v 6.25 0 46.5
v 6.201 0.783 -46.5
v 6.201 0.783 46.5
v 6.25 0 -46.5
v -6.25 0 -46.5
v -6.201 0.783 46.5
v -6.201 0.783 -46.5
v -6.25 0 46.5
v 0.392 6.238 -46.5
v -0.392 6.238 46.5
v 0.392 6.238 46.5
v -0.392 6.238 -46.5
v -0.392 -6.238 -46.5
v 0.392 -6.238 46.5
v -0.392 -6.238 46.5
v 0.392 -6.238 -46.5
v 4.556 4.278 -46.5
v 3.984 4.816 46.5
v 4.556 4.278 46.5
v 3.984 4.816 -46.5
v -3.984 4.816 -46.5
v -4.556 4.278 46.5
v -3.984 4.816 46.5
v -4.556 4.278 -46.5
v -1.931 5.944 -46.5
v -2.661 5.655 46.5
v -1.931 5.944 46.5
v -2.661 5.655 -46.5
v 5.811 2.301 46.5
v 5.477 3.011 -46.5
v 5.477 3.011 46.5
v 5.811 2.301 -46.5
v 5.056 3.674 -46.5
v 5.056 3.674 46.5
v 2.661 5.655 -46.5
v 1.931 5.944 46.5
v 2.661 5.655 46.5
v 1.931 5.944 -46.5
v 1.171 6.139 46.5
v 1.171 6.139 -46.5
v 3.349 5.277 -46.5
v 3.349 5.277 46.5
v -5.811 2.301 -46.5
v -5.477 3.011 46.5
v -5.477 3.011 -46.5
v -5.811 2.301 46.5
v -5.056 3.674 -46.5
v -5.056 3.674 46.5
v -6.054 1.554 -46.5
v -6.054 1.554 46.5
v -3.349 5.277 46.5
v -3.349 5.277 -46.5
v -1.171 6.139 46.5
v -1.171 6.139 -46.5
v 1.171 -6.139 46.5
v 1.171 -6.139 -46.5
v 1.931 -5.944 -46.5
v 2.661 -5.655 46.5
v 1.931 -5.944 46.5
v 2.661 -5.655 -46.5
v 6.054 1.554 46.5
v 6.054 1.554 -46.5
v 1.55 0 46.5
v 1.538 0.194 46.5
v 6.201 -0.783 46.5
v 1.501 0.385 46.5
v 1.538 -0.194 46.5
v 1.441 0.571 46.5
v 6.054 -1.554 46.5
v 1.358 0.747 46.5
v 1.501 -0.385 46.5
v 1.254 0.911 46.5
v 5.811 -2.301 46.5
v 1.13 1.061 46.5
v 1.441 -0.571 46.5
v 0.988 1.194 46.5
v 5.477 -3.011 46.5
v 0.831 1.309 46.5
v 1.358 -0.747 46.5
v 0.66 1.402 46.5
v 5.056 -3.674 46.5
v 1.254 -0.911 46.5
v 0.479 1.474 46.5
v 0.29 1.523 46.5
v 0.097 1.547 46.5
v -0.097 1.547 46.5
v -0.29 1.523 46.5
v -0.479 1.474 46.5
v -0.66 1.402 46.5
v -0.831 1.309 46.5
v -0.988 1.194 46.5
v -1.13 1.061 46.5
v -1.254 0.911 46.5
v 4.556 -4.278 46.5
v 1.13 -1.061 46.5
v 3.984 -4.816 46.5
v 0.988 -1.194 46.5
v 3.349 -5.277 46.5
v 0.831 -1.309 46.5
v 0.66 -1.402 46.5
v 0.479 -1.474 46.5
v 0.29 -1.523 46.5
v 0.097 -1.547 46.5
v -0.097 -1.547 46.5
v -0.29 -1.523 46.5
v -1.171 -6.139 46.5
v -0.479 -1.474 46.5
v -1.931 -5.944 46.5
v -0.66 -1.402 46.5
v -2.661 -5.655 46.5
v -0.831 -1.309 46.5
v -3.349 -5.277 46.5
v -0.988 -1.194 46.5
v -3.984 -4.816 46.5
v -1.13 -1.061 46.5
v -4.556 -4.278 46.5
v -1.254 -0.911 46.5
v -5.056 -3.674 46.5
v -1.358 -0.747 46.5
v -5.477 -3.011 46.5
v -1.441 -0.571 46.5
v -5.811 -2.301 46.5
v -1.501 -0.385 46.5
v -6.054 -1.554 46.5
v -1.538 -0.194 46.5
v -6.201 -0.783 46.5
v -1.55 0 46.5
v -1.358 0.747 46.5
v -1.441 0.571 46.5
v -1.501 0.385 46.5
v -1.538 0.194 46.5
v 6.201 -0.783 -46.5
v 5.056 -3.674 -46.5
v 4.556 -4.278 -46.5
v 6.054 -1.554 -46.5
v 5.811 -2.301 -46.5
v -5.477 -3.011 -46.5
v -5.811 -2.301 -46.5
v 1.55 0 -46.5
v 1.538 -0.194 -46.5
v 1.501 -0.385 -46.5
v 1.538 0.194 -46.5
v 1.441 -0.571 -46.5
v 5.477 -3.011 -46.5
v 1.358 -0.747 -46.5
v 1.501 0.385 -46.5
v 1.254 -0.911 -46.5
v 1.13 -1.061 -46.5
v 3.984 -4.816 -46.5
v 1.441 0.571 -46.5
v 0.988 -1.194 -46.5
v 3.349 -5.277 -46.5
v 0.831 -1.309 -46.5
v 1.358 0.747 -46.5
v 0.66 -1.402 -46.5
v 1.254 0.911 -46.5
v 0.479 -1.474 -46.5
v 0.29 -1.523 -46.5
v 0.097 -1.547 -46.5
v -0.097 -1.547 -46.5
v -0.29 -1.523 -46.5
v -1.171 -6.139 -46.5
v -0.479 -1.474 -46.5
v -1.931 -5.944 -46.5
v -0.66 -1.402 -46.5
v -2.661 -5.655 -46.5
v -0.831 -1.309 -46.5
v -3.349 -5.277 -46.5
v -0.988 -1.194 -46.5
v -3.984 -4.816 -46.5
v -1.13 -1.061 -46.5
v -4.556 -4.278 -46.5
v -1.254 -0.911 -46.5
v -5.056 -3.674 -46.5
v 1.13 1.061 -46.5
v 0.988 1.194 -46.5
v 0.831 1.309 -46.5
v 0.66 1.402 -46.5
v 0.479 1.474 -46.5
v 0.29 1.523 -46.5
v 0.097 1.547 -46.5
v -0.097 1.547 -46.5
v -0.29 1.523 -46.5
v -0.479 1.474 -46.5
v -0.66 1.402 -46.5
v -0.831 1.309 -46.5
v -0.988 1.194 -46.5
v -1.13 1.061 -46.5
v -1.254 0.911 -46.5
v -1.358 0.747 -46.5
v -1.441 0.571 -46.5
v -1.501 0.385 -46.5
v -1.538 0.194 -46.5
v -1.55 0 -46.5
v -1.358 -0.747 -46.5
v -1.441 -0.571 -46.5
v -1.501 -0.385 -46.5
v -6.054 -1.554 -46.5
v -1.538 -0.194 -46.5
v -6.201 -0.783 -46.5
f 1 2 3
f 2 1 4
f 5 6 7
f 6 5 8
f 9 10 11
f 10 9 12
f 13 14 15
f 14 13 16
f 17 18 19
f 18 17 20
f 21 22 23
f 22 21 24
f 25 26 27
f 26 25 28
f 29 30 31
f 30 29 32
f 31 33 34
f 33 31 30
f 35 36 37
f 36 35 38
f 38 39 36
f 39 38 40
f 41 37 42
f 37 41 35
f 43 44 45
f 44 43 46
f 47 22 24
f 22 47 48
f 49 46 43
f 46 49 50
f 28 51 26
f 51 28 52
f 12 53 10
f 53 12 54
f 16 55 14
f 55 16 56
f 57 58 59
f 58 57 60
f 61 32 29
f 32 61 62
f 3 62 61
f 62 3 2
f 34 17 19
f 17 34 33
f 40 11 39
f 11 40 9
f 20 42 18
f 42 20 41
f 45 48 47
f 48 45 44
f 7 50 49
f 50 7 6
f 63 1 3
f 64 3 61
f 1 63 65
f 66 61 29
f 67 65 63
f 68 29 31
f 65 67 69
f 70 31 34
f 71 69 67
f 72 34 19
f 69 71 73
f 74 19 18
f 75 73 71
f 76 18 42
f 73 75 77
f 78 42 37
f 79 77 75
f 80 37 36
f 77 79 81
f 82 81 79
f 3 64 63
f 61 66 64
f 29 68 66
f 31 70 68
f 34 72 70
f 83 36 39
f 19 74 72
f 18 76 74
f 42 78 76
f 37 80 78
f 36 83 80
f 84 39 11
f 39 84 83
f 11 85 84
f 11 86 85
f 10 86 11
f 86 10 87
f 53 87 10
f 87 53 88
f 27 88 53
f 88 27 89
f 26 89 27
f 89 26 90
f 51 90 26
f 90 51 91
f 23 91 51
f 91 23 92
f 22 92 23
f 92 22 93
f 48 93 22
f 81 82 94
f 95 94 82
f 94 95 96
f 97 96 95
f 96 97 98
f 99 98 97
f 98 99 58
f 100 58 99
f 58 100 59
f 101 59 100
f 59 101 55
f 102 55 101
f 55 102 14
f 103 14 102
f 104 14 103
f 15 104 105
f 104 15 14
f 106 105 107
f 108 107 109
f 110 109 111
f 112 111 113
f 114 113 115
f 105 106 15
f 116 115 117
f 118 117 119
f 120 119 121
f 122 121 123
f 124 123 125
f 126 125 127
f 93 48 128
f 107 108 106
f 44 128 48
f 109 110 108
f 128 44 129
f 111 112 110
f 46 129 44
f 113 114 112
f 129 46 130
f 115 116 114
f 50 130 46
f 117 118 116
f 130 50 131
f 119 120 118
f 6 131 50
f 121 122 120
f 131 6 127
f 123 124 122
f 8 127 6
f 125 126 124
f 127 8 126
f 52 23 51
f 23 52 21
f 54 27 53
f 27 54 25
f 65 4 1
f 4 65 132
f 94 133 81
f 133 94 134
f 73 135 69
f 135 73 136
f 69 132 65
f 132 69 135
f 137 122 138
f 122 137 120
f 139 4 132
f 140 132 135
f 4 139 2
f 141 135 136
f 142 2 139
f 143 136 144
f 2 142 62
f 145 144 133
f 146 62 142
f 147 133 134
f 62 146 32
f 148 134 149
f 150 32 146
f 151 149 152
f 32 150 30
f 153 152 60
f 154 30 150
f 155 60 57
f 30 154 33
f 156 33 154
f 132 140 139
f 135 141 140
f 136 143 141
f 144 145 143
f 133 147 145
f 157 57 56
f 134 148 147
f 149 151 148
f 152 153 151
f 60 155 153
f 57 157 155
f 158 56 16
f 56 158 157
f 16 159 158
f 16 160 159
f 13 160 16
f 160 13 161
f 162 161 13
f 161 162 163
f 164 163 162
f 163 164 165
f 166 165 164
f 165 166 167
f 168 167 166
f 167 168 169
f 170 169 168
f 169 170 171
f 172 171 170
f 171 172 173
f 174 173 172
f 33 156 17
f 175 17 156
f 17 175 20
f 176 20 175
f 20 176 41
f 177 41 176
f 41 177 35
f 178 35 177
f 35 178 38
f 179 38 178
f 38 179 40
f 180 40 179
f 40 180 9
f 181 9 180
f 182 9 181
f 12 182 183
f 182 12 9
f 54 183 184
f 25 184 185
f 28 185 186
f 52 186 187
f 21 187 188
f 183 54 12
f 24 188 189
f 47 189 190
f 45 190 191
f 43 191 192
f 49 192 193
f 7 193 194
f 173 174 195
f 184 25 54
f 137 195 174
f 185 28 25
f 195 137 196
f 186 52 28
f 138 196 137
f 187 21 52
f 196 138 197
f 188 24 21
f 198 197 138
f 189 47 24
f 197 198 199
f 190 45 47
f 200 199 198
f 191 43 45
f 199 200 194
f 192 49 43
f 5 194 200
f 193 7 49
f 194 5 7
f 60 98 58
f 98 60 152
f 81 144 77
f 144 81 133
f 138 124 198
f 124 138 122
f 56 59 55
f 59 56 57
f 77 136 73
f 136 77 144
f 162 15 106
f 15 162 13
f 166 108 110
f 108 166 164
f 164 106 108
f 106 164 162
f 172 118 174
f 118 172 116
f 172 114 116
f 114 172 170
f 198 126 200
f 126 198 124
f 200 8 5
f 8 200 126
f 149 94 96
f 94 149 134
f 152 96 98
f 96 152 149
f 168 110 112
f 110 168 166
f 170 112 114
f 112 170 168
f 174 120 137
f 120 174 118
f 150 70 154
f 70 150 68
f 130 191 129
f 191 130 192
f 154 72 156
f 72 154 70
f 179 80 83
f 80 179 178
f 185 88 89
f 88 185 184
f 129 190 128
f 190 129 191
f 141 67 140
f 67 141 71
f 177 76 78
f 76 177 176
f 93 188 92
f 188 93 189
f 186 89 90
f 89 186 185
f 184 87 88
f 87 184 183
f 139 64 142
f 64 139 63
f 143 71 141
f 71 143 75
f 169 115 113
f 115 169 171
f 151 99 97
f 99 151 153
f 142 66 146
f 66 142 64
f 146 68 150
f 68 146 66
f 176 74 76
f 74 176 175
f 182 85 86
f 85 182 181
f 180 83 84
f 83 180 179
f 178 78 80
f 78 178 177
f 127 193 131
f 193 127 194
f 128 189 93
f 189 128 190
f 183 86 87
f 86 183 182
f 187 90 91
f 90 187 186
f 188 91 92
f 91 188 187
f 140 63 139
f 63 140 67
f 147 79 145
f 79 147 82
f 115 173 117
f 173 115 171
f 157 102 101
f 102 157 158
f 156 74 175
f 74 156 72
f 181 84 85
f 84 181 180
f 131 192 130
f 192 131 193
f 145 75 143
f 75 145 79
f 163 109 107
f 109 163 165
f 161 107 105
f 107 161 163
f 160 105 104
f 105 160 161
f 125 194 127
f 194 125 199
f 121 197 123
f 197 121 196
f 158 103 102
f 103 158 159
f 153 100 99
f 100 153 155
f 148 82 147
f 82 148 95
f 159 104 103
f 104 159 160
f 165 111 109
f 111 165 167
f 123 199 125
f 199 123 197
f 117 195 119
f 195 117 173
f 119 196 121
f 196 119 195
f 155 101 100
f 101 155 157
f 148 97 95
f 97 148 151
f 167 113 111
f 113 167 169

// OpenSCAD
$fn = 50;


difference() {
	union() {
		translate(v = [0, 0, -46.5000000000]) {
			cylinder(h = 93, r = 6.2500000000);
		}
	}
	union() {
		translate(v = [0, 0, -100.0000000000]) {
			cylinder(h = 200, r = 1.5500000000);
		}
	}
}
